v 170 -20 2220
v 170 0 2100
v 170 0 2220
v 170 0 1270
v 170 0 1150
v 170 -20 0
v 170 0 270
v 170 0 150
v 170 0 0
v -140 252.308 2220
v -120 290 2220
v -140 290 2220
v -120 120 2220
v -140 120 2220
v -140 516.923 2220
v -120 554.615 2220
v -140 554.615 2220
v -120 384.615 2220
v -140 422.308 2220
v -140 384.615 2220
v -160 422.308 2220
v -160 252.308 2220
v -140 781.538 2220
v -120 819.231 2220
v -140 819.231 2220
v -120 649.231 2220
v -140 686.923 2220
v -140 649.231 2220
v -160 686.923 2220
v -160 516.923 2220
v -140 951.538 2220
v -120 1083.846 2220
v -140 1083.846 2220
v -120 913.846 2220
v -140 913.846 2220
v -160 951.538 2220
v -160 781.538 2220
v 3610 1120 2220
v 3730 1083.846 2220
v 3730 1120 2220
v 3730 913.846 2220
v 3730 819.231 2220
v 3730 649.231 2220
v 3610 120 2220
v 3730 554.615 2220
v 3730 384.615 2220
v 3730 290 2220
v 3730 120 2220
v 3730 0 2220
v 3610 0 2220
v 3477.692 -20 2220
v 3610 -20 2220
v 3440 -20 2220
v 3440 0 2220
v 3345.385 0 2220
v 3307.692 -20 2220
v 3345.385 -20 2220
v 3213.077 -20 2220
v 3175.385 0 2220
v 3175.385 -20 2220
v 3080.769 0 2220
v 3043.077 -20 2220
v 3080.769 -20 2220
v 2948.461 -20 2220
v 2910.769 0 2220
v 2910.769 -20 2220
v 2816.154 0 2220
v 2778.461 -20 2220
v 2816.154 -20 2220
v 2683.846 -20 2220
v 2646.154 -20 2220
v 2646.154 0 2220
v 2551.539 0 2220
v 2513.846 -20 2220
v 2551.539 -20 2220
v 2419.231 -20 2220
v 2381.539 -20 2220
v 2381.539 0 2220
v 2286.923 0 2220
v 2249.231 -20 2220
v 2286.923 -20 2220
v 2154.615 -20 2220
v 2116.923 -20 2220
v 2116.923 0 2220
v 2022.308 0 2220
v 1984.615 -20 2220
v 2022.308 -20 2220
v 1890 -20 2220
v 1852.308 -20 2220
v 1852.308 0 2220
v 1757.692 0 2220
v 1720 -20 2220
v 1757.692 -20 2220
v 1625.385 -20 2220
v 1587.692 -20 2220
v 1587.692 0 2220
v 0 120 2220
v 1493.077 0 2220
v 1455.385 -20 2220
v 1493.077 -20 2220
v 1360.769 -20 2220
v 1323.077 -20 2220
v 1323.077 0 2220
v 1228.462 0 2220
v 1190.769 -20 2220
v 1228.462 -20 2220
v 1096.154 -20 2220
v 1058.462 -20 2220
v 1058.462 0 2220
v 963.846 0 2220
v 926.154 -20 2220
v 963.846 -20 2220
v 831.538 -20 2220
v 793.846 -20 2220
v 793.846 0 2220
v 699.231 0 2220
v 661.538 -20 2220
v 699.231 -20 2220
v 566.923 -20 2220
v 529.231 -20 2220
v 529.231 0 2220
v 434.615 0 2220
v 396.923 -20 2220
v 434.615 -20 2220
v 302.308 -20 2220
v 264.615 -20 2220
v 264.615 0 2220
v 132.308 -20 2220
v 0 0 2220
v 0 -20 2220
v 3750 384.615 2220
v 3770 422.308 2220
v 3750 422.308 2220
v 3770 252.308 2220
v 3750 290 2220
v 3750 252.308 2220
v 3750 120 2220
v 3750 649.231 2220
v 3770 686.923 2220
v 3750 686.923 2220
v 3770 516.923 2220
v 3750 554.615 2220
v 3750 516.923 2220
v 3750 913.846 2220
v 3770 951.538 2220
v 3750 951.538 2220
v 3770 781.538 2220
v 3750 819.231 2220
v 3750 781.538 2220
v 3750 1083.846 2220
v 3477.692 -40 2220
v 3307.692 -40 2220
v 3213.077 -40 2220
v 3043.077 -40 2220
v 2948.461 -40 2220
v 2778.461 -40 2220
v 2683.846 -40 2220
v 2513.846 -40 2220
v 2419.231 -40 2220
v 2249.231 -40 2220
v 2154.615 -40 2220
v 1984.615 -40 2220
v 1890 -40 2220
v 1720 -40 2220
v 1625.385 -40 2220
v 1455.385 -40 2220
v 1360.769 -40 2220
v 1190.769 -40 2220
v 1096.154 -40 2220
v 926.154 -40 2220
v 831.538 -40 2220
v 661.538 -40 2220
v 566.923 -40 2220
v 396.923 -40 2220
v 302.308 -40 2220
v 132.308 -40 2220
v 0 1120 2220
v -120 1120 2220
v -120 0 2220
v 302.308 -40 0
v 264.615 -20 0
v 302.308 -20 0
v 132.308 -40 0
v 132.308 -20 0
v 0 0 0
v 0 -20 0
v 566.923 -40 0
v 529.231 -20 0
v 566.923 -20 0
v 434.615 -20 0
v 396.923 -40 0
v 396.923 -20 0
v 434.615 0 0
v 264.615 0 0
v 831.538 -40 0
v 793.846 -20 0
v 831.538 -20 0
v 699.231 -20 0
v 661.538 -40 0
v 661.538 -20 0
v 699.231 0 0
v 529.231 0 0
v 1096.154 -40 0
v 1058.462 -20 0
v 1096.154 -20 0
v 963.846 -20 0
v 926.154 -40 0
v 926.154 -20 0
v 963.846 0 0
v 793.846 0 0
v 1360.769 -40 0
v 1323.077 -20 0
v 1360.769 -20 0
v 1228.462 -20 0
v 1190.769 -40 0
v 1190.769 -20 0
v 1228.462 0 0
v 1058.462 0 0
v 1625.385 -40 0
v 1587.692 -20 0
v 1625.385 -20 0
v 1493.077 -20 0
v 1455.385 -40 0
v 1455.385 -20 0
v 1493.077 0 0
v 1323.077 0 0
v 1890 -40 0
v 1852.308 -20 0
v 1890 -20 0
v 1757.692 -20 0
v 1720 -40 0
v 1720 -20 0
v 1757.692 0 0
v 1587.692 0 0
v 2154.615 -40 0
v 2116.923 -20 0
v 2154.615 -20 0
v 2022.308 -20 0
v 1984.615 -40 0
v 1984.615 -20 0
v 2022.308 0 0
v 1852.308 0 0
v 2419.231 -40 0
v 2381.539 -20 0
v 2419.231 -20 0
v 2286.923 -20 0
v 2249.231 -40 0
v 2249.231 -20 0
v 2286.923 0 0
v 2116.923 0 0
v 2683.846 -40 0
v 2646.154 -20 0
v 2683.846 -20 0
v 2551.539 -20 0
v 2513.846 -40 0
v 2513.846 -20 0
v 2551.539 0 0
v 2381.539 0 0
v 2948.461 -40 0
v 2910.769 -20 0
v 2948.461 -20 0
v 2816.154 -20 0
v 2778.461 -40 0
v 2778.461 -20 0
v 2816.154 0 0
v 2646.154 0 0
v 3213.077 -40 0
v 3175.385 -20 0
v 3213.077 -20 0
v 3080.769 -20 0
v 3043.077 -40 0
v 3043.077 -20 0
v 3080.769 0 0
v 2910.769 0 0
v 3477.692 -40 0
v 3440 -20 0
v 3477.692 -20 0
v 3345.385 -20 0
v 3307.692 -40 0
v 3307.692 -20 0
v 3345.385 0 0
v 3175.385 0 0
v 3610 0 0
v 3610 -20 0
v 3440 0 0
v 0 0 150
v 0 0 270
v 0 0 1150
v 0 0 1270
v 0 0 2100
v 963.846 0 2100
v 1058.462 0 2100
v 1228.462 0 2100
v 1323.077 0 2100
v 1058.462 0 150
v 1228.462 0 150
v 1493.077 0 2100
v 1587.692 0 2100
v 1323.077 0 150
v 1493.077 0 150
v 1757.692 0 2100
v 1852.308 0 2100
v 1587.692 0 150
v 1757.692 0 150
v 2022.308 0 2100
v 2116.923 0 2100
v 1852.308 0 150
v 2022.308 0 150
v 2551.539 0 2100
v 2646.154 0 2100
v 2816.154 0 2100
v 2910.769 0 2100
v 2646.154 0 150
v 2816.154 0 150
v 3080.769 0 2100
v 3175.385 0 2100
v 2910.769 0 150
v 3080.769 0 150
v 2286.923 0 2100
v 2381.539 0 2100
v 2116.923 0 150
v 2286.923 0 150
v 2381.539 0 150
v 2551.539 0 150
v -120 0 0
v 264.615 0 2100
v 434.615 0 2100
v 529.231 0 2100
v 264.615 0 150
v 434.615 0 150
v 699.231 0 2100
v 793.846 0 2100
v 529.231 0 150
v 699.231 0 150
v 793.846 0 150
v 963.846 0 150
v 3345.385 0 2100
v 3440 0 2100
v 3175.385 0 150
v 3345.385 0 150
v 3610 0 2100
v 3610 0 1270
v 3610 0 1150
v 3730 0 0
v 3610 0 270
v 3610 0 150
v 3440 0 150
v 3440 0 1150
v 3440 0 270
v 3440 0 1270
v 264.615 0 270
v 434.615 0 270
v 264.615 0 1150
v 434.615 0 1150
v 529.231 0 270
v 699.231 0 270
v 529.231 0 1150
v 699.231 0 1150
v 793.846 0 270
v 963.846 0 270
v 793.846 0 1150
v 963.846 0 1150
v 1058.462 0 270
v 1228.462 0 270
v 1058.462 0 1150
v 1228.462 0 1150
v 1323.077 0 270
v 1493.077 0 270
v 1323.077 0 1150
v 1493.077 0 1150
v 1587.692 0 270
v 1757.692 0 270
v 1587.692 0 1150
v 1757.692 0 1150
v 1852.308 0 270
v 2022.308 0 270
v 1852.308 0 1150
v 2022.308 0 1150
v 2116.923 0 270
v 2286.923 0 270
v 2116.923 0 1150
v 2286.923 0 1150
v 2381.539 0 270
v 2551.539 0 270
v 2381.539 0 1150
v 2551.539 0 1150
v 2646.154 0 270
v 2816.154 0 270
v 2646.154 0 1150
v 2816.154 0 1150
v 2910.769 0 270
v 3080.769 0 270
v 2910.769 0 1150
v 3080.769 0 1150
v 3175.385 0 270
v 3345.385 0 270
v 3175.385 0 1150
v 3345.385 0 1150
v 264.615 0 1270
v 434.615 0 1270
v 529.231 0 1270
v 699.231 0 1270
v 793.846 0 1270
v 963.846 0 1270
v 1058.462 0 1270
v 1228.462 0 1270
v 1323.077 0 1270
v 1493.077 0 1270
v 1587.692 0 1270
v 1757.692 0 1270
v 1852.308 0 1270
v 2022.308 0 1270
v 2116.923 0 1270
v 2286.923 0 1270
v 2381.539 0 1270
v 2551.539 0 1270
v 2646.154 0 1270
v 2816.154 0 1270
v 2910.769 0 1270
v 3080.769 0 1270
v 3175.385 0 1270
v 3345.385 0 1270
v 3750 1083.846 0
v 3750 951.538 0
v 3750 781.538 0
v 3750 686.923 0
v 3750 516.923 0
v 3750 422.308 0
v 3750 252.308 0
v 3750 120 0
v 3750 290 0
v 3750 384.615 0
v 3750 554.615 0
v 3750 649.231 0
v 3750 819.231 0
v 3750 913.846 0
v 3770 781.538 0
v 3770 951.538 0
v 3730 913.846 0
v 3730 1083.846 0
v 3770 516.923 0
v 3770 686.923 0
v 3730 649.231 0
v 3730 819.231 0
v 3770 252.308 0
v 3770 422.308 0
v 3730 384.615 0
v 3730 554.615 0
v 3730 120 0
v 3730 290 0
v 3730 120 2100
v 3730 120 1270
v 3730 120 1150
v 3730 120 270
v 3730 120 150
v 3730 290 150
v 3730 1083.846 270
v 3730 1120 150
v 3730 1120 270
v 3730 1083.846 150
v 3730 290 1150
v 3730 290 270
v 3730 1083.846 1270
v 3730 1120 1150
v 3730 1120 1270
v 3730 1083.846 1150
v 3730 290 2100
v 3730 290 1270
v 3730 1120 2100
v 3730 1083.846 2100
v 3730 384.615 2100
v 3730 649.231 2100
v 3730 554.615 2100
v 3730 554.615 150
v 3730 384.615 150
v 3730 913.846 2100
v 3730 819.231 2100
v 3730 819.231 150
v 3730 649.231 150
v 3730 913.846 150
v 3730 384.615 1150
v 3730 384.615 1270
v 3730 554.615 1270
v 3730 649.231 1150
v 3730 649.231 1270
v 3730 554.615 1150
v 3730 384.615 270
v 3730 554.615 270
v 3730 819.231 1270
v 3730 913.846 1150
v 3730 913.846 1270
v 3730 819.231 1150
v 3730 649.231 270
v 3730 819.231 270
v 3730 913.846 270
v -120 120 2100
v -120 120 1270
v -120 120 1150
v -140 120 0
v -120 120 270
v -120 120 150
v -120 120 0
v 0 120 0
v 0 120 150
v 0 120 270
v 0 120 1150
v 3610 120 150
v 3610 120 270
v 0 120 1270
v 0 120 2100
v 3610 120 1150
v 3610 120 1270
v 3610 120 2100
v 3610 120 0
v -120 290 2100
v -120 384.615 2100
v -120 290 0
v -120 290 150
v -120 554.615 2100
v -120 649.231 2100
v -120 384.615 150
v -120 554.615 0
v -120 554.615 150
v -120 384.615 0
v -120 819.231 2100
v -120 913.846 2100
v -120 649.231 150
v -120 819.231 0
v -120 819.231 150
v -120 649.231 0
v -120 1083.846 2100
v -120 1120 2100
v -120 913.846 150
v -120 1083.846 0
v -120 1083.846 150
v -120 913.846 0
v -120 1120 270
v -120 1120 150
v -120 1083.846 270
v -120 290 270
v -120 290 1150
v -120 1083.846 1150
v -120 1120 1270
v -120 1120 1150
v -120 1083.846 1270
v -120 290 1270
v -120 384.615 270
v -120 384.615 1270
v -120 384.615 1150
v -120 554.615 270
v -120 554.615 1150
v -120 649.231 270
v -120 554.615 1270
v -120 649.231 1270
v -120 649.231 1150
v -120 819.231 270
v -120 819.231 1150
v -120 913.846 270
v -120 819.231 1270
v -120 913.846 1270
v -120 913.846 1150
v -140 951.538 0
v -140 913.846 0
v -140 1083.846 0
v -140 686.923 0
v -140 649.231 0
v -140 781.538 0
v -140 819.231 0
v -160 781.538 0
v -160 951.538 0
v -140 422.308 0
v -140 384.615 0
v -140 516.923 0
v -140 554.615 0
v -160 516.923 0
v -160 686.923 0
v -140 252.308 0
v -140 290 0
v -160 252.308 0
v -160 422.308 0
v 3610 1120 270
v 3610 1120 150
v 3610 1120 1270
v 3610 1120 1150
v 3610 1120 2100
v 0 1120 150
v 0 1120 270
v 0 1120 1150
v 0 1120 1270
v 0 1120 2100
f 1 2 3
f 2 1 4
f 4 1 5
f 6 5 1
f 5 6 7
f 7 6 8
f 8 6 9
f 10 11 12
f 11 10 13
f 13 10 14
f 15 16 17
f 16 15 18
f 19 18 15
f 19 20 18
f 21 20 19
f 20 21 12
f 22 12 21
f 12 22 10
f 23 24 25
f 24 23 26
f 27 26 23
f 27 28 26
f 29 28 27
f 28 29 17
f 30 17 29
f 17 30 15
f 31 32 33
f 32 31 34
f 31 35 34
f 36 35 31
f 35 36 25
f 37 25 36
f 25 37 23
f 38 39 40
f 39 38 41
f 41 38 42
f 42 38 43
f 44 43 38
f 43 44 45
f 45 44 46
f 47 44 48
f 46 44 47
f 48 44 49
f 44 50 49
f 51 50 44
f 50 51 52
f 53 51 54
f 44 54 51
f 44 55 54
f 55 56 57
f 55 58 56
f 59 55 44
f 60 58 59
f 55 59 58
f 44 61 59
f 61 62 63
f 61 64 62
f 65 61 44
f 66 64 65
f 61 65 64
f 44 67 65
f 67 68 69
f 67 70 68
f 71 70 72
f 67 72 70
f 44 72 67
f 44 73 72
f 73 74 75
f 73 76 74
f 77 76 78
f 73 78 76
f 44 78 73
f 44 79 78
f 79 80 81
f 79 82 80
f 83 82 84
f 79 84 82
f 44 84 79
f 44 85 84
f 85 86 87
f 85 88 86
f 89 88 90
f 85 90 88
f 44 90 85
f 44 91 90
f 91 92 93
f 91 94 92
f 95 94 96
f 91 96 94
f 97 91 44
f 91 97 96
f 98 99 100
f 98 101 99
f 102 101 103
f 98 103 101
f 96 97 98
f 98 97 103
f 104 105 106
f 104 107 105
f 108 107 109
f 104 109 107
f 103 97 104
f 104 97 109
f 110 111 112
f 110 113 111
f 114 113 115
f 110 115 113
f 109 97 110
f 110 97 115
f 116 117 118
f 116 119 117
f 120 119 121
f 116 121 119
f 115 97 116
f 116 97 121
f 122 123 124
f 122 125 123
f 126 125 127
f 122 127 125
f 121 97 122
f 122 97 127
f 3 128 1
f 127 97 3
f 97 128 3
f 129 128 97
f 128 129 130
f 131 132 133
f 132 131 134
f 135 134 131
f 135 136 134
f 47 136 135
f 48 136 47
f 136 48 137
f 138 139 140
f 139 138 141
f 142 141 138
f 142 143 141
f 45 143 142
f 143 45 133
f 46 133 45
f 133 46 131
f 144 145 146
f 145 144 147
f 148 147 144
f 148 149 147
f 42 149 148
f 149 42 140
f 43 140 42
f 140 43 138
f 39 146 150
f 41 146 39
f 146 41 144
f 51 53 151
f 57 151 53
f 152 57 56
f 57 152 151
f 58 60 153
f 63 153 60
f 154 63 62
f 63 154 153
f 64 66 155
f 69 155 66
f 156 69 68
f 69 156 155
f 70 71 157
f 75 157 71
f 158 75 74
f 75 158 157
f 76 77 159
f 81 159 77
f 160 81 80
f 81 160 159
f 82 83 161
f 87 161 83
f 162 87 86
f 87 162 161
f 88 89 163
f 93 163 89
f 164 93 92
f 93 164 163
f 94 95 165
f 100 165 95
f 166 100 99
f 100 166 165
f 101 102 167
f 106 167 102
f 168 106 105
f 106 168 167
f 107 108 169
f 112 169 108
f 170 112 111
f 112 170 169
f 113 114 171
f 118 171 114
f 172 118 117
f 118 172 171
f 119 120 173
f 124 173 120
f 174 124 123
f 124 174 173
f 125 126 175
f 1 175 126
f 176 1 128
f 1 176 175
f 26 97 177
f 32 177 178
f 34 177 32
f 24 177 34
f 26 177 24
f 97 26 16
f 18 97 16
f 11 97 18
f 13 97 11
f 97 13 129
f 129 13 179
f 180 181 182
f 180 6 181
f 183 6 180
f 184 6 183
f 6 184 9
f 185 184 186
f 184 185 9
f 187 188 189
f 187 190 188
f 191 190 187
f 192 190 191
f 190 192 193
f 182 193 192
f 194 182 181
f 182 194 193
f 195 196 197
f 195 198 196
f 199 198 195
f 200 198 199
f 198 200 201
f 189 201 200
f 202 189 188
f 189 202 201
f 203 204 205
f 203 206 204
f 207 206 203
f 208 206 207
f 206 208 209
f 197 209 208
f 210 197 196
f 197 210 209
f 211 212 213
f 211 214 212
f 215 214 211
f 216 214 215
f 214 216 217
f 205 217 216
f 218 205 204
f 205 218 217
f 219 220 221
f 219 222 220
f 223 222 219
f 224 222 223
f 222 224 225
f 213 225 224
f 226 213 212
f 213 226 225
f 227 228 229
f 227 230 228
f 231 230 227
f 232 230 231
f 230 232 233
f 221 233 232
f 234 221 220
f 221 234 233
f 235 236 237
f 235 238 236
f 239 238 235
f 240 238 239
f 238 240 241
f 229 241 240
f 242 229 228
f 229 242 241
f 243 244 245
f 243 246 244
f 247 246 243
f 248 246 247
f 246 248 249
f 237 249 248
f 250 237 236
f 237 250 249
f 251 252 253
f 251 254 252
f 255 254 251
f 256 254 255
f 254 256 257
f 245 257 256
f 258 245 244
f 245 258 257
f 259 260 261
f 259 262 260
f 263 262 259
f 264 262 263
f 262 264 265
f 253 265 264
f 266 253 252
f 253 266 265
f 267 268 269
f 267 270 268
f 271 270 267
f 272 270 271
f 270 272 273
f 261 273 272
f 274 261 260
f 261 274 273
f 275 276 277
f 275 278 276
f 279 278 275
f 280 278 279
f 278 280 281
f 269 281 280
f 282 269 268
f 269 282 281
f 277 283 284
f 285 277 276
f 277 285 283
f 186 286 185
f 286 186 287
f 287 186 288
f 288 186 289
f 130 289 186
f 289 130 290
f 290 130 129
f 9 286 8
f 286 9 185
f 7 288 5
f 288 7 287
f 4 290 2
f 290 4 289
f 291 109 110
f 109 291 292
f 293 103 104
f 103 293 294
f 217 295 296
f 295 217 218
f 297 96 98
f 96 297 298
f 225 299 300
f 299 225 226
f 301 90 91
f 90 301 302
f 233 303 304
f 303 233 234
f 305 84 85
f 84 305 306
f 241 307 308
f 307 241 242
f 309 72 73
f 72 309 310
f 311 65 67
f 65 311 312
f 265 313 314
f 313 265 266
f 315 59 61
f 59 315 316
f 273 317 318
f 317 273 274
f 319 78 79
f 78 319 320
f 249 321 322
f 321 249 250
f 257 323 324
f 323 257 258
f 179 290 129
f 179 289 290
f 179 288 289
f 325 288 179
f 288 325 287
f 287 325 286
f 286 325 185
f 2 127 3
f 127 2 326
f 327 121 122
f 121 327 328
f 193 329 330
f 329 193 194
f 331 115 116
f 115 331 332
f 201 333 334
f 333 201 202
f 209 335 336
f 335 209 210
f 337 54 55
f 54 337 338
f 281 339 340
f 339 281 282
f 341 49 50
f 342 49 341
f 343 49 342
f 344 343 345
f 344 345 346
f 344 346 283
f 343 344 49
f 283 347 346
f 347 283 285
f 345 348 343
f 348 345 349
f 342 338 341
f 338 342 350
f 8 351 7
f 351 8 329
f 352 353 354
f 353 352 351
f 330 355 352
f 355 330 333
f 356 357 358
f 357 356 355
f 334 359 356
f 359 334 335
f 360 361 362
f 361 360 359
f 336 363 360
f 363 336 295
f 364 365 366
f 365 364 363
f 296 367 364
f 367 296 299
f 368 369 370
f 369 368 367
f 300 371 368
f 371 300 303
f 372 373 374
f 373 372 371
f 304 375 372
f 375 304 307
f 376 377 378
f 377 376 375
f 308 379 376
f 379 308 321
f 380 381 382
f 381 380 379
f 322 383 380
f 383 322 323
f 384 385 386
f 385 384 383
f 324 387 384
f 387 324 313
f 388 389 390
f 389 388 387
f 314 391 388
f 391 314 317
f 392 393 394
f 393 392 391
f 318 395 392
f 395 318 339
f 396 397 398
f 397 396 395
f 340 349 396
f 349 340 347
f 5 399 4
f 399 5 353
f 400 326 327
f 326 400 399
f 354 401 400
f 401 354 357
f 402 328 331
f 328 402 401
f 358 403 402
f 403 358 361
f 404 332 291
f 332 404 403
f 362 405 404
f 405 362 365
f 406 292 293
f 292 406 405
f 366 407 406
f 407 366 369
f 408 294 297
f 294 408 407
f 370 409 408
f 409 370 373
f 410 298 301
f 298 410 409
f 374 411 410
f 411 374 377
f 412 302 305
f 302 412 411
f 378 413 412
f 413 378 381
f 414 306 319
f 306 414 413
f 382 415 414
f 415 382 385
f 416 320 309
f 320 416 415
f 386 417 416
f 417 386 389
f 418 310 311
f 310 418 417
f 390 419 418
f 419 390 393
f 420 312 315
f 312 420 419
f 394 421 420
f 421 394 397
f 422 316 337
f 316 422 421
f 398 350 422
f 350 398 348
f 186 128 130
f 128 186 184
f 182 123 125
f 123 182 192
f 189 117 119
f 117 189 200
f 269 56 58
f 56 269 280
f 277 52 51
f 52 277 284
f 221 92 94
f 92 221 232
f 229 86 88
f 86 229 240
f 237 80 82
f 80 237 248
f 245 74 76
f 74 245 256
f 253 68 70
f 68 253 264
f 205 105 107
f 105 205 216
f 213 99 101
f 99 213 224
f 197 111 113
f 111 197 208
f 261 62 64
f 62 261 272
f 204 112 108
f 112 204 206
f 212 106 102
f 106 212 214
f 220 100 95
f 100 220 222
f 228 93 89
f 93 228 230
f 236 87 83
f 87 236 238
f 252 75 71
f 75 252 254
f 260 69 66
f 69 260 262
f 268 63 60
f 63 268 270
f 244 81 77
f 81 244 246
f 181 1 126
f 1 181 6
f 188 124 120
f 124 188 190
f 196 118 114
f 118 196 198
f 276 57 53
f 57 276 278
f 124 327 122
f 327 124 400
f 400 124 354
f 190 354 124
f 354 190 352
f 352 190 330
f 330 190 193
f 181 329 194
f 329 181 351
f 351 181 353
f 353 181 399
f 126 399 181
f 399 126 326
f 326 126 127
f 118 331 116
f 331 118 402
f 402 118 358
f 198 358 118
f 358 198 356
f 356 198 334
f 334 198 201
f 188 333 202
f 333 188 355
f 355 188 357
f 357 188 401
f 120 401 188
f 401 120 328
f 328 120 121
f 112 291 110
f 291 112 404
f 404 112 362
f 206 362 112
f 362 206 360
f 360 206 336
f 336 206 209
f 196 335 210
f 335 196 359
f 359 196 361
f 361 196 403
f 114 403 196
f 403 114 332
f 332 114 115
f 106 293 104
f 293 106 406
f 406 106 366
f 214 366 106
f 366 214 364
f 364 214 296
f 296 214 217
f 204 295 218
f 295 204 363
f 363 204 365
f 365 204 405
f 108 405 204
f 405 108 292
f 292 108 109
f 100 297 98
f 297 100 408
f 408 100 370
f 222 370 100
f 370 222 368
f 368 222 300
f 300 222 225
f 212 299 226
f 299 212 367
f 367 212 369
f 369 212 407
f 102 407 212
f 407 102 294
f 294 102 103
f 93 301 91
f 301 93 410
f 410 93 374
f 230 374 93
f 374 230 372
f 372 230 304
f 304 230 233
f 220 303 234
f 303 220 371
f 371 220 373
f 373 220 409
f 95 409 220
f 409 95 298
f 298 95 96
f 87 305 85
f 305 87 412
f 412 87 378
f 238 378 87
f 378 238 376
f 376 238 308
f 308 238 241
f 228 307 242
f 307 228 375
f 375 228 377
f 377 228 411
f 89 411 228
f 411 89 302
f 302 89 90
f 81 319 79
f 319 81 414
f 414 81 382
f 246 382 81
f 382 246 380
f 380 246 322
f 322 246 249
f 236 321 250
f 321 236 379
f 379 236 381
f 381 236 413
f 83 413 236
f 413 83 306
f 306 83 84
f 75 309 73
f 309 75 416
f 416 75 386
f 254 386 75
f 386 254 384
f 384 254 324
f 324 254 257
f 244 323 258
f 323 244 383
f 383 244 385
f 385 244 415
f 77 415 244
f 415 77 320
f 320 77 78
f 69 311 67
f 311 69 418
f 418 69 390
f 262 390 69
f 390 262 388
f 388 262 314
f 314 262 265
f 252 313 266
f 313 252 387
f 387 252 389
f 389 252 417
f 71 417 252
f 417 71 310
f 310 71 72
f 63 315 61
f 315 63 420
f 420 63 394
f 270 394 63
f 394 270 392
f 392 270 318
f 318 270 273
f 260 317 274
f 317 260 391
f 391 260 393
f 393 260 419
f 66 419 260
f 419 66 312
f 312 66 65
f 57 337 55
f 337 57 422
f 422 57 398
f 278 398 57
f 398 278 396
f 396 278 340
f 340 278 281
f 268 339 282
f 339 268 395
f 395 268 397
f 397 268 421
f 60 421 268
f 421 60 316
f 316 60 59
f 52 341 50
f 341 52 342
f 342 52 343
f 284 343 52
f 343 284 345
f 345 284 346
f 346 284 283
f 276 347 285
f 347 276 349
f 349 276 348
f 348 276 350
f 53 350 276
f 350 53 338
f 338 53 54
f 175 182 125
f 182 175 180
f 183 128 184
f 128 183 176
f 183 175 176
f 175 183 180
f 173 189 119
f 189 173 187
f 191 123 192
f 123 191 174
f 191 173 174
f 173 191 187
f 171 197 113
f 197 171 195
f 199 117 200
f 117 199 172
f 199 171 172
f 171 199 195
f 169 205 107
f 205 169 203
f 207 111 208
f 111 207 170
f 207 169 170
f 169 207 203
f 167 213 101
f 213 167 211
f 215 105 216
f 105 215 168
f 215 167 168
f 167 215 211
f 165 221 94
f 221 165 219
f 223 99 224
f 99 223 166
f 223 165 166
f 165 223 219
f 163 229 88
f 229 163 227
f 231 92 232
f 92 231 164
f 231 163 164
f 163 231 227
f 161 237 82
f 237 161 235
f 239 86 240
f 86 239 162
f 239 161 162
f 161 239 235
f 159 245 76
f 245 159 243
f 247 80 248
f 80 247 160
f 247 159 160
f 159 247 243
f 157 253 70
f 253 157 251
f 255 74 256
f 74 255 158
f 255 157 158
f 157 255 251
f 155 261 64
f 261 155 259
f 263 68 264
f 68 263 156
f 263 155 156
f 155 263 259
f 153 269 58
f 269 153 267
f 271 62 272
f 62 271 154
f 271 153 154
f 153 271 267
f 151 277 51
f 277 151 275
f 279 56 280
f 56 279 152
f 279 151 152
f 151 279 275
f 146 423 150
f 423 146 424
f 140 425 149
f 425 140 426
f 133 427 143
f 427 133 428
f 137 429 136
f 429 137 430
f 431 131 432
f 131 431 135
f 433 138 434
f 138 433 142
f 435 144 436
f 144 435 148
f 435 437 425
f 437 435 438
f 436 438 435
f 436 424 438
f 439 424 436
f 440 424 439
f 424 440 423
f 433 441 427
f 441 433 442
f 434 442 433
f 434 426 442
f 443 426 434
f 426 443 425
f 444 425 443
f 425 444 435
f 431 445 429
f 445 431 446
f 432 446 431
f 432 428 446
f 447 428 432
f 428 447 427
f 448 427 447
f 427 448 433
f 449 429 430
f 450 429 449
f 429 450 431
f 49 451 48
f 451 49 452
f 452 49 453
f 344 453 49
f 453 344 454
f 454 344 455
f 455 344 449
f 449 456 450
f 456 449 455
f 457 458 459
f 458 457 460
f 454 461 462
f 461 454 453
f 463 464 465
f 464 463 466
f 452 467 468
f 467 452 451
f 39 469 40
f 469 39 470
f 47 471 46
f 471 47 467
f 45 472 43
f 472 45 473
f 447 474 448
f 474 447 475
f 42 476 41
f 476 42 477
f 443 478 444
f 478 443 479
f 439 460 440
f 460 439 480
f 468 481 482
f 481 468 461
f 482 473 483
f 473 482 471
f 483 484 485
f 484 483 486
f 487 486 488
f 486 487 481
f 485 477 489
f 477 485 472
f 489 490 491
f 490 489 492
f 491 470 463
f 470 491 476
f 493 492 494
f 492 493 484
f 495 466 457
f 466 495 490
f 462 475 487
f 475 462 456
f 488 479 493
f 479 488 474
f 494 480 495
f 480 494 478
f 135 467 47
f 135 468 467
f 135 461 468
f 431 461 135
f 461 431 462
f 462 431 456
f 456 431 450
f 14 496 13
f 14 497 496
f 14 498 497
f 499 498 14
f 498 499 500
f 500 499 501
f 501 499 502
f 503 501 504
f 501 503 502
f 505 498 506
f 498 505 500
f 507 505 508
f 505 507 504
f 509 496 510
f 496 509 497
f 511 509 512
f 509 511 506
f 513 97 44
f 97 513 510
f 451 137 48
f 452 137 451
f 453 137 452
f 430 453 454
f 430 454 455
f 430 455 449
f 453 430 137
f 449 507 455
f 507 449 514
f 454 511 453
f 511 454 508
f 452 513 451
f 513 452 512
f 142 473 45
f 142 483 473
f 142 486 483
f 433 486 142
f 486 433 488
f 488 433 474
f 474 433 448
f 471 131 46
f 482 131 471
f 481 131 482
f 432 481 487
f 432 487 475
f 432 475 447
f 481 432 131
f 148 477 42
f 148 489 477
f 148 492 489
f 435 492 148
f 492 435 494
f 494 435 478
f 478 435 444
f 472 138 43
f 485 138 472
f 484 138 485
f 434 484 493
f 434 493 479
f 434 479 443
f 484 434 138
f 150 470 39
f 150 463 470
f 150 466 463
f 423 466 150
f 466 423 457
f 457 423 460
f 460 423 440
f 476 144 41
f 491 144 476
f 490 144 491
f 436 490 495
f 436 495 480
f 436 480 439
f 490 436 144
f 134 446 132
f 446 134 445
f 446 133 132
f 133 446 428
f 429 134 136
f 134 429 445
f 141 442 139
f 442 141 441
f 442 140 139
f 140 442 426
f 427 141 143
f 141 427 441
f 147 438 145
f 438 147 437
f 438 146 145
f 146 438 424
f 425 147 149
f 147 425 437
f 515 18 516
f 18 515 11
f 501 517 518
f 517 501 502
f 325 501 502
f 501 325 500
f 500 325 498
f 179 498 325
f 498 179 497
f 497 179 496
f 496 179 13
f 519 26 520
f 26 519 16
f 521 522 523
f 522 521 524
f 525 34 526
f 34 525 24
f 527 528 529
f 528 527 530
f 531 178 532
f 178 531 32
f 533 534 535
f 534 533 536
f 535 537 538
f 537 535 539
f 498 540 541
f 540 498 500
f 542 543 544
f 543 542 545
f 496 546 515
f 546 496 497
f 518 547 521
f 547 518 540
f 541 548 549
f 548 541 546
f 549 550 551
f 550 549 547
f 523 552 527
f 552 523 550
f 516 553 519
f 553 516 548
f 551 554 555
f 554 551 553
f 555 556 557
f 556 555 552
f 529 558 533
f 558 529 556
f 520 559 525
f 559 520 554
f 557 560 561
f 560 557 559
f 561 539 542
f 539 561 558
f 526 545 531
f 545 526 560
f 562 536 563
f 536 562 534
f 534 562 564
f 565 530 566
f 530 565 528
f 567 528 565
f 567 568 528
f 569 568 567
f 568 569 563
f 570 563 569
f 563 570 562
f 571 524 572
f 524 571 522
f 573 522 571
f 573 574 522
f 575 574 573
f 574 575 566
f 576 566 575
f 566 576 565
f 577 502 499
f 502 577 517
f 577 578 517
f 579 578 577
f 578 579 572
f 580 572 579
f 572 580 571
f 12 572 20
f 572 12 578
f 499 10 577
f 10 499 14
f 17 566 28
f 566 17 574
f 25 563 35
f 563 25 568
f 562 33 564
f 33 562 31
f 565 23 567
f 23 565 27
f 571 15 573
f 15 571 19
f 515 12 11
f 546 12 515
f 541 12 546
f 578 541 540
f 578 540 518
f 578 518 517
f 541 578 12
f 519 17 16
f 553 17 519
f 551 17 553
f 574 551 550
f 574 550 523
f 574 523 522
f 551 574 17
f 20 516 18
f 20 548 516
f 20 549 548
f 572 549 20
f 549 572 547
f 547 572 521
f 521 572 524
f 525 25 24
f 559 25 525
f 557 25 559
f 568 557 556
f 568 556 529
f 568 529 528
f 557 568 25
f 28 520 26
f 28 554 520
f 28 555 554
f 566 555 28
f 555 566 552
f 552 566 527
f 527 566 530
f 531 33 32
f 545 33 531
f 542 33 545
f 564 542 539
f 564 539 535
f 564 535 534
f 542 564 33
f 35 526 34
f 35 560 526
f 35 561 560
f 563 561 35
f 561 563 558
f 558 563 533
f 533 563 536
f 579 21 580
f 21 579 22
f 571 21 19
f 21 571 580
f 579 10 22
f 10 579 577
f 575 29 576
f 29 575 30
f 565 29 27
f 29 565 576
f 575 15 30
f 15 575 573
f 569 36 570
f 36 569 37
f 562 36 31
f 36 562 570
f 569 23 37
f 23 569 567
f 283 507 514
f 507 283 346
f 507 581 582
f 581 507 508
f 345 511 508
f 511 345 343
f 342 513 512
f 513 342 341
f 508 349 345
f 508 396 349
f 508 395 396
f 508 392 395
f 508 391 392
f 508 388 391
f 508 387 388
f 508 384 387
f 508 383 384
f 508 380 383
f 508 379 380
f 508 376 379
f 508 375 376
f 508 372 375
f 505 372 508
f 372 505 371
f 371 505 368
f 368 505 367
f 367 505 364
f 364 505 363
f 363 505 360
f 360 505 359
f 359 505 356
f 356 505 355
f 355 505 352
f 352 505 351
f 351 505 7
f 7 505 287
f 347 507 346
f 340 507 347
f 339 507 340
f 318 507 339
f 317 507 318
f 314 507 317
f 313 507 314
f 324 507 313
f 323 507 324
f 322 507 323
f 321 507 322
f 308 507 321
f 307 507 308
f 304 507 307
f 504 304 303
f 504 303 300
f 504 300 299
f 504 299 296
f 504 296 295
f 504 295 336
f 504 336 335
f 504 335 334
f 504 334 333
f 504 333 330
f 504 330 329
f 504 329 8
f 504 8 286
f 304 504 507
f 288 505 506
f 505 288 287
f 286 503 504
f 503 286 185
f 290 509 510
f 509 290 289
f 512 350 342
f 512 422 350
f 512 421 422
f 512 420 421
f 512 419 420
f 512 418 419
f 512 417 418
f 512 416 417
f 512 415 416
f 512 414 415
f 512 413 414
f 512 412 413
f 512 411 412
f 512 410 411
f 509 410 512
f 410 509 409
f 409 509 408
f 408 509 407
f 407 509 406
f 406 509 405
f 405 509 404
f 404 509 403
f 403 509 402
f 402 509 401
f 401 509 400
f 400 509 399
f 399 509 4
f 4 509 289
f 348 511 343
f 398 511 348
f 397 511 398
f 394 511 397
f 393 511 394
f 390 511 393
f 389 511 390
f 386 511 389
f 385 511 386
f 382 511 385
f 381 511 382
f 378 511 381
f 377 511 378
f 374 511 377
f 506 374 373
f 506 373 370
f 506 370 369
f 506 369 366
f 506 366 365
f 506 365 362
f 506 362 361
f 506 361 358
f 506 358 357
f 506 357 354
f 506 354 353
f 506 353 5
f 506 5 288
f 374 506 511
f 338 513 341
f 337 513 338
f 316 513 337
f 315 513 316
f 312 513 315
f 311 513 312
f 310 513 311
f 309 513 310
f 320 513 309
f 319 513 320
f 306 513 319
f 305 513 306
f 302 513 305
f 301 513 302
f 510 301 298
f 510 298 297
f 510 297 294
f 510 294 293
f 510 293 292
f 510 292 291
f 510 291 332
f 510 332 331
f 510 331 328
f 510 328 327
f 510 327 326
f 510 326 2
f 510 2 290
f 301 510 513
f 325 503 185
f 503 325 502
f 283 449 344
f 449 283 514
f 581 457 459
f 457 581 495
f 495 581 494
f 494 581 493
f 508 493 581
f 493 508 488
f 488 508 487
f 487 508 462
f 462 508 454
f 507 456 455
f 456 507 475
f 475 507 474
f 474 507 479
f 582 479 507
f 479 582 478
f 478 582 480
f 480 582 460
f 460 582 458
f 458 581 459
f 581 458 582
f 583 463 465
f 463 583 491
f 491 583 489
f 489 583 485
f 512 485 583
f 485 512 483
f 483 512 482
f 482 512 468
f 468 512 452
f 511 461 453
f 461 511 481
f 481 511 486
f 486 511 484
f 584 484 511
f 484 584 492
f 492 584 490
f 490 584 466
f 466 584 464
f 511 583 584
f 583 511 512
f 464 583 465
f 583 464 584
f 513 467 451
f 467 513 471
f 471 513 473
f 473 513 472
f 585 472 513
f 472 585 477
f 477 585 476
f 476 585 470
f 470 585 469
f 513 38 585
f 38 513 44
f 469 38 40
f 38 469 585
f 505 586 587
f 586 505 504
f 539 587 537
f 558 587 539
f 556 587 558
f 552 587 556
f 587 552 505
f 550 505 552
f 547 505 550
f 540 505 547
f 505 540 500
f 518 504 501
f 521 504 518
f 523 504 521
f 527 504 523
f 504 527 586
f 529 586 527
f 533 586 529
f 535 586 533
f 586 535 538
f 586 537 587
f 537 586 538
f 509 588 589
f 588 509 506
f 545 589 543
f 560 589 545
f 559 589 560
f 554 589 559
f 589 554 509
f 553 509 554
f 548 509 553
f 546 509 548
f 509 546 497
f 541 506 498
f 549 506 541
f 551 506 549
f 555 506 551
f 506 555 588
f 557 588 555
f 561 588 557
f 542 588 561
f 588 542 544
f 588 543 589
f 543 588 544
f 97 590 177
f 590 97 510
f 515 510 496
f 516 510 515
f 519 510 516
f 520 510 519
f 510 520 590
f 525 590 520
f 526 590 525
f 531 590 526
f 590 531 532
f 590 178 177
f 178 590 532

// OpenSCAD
laenge_balken=3610;
dicke_balken=120;
hoehe_unterkante_balken1=150;
hoehe_unterkante_balken2=1150;
hoehe_unterkante_balken3=2100;
dicke_brett=20;
breite_brett=170;
hoehe_brett=hoehe_unterkante_balken3+dicke_balken;
anzahl_bretter=14;
breite_ansatz=1000;
anzahl_bretter_ansatz=4;
brett_mittenabstand = (laenge_balken-breite_brett)/(anzahl_bretter-1);
versatz_aussenbrett=brett_mittenabstand- (brett_mittenabstand-breite_brett)/2 - breite_brett/2;

// Wand frontal
translate([0,0,hoehe_unterkante_balken1]){cube([laenge_balken, dicke_balken, dicke_balken]);}
translate([0,0,hoehe_unterkante_balken2]){cube([laenge_balken, dicke_balken, dicke_balken]);}
translate([0,0,hoehe_unterkante_balken3]){cube([laenge_balken, dicke_balken, dicke_balken]);}
translate([-dicke_balken,0,0]){cube([dicke_balken, dicke_balken, hoehe_unterkante_balken3+dicke_balken]);}
translate([laenge_balken,0,0]){cube([dicke_balken, dicke_balken, hoehe_unterkante_balken3+dicke_balken]);}

for (i = [0 : anzahl_bretter-1]) {
    translate([brett_mittenabstand * i, -dicke_brett ,0]) { 
        cube([breite_brett, dicke_brett, hoehe_brett]); 
        }
    }
for (i = [0 : anzahl_bretter-2]) {
    translate([brett_mittenabstand * i + versatz_aussenbrett, -dicke_brett*2 ,0]) { 
        cube([breite_brett, dicke_brett, hoehe_brett]); 
        }
    }

//Wand links
translate([laenge_balken,dicke_balken,hoehe_unterkante_balken1]){cube([dicke_balken, breite_ansatz, dicke_balken]);}
translate([laenge_balken,dicke_balken,hoehe_unterkante_balken2]){cube([dicke_balken, breite_ansatz, dicke_balken]);}
translate([laenge_balken,dicke_balken,hoehe_unterkante_balken3]){cube([dicke_balken, breite_ansatz, dicke_balken]);}

for (i = [0 : anzahl_bretter_ansatz-1]) {
    translate([laenge_balken+dicke_balken, brett_mittenabstand * i+dicke_balken ,0]) { 
        cube([dicke_brett, breite_brett, hoehe_brett]); 
        }
    }
for (i = [0 : anzahl_bretter_ansatz-2]) {
    translate([laenge_balken+dicke_balken+dicke_brett, brett_mittenabstand * i + dicke_balken + versatz_aussenbrett, 0]) { 
        cube([dicke_brett, breite_brett, hoehe_brett]); 
        }
    }

// wand rechts
translate([-dicke_balken,dicke_balken,hoehe_unterkante_balken1]){cube([dicke_balken, breite_ansatz, dicke_balken]);}
translate([-dicke_balken,dicke_balken,hoehe_unterkante_balken2]){cube([dicke_balken, breite_ansatz, dicke_balken]);}
translate([-dicke_balken,dicke_balken,hoehe_unterkante_balken3]){cube([dicke_balken, breite_ansatz, dicke_balken]);}

for (i = [0 : anzahl_bretter_ansatz-1]) {
    translate([-dicke_brett-dicke_balken, brett_mittenabstand * i+dicke_balken ,0]) { 
        cube([dicke_brett, breite_brett, hoehe_brett]); 
        }
    }
for (i = [0 : anzahl_bretter_ansatz-2]) {
    translate([-dicke_brett*2-dicke_balken, brett_mittenabstand * i + dicke_balken + versatz_aussenbrett, 0]) { 
        cube([dicke_brett, breite_brett, hoehe_brett]); 
        }
    }



//echo(brett_mittenabstand-breite_brett);
